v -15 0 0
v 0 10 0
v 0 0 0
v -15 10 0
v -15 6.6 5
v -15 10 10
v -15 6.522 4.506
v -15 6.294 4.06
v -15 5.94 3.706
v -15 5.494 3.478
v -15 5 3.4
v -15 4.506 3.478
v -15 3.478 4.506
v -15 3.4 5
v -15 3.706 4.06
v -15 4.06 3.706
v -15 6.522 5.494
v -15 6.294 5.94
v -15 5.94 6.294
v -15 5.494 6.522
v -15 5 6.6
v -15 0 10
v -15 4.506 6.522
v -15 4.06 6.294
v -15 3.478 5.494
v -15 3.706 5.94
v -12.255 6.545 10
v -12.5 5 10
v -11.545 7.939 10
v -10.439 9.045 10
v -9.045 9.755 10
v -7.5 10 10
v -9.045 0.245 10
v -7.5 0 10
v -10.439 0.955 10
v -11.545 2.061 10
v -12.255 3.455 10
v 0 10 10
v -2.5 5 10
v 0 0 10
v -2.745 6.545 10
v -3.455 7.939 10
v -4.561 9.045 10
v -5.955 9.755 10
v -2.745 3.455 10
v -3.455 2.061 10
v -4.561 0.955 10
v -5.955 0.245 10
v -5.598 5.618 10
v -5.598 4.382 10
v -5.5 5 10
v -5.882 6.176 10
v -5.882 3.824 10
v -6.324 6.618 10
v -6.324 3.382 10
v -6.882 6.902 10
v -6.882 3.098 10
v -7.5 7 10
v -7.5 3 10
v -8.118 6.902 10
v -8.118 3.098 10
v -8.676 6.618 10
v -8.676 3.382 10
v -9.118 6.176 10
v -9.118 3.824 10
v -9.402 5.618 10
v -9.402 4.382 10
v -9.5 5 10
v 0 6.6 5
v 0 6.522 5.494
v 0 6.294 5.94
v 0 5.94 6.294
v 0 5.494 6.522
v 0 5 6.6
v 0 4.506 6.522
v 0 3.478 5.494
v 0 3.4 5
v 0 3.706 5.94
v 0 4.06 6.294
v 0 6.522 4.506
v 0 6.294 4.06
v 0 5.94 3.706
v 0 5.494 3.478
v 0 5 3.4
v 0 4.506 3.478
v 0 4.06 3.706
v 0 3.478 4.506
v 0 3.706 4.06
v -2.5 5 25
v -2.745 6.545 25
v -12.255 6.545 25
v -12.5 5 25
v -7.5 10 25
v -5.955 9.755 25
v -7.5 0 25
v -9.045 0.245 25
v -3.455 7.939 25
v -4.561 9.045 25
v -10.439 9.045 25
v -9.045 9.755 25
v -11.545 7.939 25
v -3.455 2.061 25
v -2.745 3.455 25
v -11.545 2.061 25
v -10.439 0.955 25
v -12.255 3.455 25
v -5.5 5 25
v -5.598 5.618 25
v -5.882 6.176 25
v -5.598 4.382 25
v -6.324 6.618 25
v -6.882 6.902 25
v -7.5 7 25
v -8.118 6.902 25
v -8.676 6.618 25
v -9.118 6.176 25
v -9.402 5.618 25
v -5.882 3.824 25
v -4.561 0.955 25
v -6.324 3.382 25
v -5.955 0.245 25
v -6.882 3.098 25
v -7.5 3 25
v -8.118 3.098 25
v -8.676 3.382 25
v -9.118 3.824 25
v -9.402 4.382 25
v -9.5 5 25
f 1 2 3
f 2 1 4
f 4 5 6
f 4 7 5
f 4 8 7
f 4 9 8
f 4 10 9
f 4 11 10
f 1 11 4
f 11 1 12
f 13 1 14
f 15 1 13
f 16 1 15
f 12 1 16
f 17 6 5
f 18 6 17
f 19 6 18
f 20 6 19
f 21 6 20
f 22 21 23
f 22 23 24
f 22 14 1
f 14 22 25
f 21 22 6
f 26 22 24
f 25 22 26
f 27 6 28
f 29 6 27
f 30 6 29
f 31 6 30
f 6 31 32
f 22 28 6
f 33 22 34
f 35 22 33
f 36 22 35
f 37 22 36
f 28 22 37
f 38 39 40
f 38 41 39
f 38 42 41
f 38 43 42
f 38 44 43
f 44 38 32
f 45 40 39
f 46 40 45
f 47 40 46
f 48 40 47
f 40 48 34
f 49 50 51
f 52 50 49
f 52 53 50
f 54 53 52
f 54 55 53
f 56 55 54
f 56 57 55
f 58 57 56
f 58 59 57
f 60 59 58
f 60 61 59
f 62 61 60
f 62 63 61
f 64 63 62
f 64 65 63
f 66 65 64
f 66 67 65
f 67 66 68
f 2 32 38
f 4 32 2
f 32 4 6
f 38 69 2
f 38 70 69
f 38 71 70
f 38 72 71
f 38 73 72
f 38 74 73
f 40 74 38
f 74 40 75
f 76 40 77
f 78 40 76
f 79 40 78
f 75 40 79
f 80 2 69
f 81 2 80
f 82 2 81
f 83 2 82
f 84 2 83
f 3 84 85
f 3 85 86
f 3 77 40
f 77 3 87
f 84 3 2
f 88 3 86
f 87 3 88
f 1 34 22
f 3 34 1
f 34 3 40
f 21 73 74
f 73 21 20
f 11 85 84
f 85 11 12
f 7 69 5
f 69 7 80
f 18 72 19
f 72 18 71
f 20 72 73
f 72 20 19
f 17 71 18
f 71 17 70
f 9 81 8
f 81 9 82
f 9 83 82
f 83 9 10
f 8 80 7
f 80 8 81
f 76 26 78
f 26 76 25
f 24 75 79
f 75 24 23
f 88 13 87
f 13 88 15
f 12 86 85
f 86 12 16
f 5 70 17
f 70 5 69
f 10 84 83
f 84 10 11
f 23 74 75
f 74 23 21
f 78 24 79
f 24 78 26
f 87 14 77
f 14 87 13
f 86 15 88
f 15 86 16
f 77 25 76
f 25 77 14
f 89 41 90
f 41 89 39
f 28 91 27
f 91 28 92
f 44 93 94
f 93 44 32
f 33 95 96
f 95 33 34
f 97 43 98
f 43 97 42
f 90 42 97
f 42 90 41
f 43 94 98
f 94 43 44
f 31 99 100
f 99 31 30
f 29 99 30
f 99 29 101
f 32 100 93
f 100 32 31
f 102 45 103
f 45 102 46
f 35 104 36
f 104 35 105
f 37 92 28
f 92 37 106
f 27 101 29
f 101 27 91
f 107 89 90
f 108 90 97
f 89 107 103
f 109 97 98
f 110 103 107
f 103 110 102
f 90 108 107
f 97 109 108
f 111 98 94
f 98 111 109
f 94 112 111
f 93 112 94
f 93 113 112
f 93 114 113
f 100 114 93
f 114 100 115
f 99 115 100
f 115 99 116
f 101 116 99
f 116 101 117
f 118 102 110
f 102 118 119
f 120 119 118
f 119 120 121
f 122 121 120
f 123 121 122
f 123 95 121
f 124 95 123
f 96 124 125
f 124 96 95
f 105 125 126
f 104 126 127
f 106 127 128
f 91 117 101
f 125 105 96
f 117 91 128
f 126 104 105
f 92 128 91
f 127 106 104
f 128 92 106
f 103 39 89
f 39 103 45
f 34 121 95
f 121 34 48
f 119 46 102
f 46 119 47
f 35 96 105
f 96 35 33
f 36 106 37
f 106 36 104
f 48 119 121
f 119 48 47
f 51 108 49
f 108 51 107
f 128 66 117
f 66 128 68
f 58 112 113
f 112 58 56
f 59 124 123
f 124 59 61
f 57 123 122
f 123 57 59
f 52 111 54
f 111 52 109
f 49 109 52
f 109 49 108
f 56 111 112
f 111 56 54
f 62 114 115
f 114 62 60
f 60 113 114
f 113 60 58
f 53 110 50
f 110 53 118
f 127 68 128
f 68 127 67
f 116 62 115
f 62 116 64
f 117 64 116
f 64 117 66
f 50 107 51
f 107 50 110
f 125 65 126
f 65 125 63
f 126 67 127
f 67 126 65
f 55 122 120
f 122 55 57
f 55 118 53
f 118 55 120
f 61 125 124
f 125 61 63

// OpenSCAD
$fn = 20;

spacer();


module spacer() {
    rotate([0, -90, 0]) {
        
    difference(){
        cube([10, 10, 15]);
        translate([5, 5, 0])
            cylinder(h=15, r=1.6, center=false);
/*        
        translate([5, 10, 7.5])
            rotate([90, 0, 0])
                cylinder(h=10, r=1.45, center=false);
        
        translate([0, 5, 7.5])
            rotate([90, 0, 90])
                cylinder(h=10, r=1.45, center=false);
*/
    
    };
    spacer_round();
}

module spacer_round() {
    translate([10, 5, 7.5])
    rotate([0, 90, 0])
    difference(){
        cylinder(h=15, r=5);
        cylinder(h=15, r=2);
    };
}

}
